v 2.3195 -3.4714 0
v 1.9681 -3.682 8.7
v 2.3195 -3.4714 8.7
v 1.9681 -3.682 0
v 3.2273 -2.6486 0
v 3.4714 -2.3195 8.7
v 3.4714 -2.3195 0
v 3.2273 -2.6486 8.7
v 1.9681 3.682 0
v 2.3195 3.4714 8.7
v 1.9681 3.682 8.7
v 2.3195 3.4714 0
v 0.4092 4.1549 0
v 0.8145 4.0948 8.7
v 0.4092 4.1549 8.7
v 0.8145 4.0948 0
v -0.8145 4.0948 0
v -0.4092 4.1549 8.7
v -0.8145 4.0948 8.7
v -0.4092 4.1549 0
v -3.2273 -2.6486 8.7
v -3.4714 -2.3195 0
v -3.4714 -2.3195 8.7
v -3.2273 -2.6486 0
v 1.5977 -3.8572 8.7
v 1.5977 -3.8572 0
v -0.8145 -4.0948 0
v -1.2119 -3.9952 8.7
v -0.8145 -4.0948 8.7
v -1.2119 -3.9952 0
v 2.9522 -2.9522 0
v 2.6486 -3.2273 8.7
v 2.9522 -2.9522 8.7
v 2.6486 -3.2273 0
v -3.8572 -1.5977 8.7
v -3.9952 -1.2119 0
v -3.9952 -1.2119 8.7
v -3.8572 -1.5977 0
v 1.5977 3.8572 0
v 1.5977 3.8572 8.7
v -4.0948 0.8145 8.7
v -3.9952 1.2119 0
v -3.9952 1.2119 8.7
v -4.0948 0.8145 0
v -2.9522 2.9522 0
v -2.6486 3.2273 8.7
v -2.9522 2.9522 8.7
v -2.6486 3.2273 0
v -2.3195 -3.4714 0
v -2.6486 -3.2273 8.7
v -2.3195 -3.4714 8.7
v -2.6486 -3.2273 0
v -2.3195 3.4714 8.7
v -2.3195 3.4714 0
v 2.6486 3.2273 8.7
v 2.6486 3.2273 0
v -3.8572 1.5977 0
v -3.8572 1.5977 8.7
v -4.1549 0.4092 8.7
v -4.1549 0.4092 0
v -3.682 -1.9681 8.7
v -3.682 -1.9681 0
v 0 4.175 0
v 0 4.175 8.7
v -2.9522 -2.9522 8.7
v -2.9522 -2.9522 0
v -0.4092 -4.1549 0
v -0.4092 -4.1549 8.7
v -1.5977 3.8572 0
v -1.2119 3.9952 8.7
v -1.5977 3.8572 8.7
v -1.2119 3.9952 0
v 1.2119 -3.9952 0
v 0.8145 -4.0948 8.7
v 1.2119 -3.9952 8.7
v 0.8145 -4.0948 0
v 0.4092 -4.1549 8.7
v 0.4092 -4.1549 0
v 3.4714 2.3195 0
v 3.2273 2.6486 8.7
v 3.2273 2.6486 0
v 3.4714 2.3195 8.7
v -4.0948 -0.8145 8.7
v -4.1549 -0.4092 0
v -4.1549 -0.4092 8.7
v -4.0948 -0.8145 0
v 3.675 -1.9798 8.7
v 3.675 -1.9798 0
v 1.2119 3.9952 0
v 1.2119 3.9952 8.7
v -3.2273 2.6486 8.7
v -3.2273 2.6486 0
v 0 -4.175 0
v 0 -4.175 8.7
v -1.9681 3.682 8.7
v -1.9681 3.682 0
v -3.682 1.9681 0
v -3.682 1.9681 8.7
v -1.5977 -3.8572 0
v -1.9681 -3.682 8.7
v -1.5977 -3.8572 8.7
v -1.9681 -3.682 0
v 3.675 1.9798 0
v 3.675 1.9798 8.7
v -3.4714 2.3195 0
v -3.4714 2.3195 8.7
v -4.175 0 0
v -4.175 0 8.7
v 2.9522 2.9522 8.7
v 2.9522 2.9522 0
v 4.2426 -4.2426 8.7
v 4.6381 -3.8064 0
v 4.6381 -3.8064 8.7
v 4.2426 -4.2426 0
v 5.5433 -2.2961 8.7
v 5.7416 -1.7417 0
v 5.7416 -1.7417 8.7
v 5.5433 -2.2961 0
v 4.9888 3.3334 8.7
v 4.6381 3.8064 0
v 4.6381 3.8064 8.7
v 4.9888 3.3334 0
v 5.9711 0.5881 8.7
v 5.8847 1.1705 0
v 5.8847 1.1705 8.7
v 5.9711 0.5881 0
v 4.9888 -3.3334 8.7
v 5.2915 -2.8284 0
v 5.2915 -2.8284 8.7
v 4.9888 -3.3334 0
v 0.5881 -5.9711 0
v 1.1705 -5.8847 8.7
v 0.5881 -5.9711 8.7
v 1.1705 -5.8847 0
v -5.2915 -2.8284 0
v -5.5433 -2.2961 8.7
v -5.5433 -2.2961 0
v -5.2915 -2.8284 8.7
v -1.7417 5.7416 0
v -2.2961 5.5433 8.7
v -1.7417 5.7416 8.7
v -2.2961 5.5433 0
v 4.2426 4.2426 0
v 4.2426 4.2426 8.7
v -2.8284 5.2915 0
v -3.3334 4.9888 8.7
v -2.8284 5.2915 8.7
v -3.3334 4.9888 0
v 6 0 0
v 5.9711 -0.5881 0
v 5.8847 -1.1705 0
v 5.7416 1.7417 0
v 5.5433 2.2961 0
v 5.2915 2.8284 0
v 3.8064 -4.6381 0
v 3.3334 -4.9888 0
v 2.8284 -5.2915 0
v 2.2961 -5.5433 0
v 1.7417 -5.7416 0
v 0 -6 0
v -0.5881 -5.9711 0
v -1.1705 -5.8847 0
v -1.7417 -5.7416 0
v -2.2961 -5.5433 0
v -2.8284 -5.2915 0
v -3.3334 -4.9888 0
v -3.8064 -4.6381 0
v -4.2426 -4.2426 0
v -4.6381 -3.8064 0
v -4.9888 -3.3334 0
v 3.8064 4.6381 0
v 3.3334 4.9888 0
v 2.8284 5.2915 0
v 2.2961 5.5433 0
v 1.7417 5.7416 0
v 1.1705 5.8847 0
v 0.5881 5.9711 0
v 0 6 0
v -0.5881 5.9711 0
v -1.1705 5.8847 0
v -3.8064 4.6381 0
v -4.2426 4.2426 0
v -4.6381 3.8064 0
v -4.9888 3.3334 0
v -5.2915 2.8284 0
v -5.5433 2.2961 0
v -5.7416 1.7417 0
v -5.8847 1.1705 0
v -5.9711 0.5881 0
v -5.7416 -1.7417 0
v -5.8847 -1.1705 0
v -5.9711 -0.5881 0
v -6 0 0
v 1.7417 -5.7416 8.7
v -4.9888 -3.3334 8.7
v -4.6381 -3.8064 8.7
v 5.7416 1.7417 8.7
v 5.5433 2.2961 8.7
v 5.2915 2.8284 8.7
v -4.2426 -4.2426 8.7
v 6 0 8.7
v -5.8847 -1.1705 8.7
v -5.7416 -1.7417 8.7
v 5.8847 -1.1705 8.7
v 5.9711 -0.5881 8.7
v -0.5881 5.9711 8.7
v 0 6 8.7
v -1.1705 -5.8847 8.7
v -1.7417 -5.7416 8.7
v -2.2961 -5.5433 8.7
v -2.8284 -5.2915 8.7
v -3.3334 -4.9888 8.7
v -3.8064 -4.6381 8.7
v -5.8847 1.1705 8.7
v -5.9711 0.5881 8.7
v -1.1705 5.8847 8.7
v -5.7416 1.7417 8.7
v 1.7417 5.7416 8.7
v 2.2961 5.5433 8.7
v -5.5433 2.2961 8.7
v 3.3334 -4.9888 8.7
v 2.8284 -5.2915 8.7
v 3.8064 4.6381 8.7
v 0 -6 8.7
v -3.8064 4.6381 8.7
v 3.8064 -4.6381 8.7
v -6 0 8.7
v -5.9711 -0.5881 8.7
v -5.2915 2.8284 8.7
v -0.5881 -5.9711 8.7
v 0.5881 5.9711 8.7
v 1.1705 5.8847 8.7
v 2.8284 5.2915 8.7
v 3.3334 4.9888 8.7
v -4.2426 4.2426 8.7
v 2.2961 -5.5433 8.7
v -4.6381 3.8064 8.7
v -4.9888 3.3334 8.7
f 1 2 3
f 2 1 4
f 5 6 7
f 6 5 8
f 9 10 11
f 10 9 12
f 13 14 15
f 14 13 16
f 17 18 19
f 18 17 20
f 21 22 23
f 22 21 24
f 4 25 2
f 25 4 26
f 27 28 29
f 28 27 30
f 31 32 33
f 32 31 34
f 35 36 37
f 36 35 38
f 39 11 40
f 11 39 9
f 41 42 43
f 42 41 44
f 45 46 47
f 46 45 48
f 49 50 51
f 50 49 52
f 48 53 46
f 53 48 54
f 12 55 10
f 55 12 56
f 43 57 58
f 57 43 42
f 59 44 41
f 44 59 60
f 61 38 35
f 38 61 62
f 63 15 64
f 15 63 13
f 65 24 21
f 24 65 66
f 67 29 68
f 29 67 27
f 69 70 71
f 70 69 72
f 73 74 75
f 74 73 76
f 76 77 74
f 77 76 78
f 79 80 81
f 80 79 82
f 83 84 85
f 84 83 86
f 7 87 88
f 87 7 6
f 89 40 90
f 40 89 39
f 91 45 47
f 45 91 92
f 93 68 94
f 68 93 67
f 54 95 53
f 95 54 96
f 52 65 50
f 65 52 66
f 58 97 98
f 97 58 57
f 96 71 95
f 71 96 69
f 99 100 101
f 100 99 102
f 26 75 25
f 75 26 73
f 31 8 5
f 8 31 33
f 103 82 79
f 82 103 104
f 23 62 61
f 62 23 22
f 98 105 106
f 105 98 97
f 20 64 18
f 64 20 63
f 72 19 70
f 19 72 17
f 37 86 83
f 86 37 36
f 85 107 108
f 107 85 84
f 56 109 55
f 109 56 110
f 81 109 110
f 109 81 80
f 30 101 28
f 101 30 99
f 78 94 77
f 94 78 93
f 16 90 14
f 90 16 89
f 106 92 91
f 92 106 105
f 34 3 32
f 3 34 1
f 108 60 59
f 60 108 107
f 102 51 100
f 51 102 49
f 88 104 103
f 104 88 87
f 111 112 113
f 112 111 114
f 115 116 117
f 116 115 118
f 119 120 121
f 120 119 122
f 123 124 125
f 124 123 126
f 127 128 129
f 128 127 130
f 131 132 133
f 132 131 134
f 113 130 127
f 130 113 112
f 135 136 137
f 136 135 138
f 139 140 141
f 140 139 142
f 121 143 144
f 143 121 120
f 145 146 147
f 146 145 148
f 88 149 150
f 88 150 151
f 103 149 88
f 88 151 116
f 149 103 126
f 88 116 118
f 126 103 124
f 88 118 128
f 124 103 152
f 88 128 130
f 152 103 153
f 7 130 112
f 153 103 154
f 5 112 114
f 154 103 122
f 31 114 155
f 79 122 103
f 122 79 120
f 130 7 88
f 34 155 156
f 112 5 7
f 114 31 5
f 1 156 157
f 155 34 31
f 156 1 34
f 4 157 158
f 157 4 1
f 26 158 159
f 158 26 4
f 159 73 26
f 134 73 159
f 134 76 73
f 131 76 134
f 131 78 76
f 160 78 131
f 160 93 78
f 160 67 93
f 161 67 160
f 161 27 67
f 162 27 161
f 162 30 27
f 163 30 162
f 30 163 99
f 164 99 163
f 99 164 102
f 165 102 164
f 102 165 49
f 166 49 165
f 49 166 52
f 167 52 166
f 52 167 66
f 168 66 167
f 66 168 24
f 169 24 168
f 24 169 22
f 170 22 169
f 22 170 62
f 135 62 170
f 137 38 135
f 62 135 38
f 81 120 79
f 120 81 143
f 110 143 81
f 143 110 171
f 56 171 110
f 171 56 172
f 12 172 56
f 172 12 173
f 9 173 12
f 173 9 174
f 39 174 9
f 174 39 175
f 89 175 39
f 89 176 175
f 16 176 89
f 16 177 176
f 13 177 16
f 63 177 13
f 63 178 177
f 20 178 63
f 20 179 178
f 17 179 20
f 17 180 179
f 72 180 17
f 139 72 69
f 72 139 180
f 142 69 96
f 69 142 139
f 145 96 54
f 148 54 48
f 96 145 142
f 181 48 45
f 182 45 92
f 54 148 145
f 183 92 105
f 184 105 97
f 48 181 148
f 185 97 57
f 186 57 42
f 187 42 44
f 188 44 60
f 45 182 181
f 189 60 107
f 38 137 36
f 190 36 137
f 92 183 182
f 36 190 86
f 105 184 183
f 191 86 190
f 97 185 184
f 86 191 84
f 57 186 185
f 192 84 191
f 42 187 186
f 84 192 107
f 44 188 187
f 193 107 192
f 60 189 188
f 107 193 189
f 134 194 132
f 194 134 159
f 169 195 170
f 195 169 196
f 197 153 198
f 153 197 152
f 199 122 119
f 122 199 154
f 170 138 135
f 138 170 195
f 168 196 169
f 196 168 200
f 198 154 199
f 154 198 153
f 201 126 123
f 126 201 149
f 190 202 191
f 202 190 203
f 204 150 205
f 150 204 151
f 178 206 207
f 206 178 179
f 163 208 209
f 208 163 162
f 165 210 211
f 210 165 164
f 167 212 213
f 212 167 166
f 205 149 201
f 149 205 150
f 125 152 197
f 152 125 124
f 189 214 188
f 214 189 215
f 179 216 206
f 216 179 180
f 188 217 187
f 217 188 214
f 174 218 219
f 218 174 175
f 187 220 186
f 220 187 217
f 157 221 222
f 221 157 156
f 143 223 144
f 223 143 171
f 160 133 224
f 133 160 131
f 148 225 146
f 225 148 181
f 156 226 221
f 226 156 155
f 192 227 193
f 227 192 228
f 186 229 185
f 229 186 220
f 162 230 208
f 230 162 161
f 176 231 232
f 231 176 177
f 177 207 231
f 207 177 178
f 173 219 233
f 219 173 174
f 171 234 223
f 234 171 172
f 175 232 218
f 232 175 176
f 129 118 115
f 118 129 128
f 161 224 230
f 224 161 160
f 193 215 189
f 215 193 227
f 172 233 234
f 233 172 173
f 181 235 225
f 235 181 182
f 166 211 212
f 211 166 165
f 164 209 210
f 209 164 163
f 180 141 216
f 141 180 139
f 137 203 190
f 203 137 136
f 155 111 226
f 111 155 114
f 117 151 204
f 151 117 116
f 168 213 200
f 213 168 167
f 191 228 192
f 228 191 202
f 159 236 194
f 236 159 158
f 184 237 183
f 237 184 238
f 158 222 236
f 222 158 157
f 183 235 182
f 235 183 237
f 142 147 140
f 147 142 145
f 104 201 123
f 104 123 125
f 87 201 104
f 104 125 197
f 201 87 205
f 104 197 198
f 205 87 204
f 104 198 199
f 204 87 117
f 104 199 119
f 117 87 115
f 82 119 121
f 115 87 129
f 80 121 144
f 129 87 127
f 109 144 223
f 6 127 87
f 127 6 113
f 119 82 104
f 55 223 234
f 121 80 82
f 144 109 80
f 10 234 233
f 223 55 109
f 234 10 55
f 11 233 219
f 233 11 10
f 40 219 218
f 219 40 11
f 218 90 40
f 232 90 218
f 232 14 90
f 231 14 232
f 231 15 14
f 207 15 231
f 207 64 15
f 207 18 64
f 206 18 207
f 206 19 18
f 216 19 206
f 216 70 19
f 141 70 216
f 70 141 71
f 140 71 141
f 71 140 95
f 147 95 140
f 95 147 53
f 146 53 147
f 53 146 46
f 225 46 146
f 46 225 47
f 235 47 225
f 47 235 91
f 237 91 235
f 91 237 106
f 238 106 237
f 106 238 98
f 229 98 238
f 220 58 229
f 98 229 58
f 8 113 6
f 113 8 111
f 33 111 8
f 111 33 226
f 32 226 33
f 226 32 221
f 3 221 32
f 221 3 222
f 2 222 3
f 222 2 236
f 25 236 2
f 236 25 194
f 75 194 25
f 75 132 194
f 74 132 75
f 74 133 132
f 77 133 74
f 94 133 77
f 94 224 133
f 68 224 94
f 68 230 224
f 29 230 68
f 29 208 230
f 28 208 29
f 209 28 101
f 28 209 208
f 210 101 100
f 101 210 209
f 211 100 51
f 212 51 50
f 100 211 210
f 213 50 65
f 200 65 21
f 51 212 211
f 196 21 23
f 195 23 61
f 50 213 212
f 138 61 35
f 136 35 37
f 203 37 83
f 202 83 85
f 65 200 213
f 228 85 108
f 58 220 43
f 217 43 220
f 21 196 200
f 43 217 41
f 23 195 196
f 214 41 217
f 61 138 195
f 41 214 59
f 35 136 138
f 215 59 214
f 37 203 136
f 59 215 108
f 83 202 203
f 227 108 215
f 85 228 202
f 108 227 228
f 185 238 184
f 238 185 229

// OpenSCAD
// Gen-CZ — gap sleeve: rigid spacer on the shaft BETWEEN the two rotor carriers (passes through the stator
// hole). Length = m2m, so it sets the magnet gap and carries the full magnet pull. Print x1, upright.
include <parameters.scad>;
$fn = 64;
// D-flat keyed bore: flat faces +X (angle 0 = magnet pocket 0 = index notch)
module dflat_bore(h) {
    intersection() {
        cylinder(d=shaft_bore, h=h);
        translate([-shaft_bore, -shaft_bore, 0]) cube([shaft_bore + dflat_x, 2*shaft_bore, h]);
    }
}

difference() {
    cylinder(d=sleeve_od, h=m2m);
    translate([0, 0, -0.1]) dflat_bore(m2m + 0.2);
}
